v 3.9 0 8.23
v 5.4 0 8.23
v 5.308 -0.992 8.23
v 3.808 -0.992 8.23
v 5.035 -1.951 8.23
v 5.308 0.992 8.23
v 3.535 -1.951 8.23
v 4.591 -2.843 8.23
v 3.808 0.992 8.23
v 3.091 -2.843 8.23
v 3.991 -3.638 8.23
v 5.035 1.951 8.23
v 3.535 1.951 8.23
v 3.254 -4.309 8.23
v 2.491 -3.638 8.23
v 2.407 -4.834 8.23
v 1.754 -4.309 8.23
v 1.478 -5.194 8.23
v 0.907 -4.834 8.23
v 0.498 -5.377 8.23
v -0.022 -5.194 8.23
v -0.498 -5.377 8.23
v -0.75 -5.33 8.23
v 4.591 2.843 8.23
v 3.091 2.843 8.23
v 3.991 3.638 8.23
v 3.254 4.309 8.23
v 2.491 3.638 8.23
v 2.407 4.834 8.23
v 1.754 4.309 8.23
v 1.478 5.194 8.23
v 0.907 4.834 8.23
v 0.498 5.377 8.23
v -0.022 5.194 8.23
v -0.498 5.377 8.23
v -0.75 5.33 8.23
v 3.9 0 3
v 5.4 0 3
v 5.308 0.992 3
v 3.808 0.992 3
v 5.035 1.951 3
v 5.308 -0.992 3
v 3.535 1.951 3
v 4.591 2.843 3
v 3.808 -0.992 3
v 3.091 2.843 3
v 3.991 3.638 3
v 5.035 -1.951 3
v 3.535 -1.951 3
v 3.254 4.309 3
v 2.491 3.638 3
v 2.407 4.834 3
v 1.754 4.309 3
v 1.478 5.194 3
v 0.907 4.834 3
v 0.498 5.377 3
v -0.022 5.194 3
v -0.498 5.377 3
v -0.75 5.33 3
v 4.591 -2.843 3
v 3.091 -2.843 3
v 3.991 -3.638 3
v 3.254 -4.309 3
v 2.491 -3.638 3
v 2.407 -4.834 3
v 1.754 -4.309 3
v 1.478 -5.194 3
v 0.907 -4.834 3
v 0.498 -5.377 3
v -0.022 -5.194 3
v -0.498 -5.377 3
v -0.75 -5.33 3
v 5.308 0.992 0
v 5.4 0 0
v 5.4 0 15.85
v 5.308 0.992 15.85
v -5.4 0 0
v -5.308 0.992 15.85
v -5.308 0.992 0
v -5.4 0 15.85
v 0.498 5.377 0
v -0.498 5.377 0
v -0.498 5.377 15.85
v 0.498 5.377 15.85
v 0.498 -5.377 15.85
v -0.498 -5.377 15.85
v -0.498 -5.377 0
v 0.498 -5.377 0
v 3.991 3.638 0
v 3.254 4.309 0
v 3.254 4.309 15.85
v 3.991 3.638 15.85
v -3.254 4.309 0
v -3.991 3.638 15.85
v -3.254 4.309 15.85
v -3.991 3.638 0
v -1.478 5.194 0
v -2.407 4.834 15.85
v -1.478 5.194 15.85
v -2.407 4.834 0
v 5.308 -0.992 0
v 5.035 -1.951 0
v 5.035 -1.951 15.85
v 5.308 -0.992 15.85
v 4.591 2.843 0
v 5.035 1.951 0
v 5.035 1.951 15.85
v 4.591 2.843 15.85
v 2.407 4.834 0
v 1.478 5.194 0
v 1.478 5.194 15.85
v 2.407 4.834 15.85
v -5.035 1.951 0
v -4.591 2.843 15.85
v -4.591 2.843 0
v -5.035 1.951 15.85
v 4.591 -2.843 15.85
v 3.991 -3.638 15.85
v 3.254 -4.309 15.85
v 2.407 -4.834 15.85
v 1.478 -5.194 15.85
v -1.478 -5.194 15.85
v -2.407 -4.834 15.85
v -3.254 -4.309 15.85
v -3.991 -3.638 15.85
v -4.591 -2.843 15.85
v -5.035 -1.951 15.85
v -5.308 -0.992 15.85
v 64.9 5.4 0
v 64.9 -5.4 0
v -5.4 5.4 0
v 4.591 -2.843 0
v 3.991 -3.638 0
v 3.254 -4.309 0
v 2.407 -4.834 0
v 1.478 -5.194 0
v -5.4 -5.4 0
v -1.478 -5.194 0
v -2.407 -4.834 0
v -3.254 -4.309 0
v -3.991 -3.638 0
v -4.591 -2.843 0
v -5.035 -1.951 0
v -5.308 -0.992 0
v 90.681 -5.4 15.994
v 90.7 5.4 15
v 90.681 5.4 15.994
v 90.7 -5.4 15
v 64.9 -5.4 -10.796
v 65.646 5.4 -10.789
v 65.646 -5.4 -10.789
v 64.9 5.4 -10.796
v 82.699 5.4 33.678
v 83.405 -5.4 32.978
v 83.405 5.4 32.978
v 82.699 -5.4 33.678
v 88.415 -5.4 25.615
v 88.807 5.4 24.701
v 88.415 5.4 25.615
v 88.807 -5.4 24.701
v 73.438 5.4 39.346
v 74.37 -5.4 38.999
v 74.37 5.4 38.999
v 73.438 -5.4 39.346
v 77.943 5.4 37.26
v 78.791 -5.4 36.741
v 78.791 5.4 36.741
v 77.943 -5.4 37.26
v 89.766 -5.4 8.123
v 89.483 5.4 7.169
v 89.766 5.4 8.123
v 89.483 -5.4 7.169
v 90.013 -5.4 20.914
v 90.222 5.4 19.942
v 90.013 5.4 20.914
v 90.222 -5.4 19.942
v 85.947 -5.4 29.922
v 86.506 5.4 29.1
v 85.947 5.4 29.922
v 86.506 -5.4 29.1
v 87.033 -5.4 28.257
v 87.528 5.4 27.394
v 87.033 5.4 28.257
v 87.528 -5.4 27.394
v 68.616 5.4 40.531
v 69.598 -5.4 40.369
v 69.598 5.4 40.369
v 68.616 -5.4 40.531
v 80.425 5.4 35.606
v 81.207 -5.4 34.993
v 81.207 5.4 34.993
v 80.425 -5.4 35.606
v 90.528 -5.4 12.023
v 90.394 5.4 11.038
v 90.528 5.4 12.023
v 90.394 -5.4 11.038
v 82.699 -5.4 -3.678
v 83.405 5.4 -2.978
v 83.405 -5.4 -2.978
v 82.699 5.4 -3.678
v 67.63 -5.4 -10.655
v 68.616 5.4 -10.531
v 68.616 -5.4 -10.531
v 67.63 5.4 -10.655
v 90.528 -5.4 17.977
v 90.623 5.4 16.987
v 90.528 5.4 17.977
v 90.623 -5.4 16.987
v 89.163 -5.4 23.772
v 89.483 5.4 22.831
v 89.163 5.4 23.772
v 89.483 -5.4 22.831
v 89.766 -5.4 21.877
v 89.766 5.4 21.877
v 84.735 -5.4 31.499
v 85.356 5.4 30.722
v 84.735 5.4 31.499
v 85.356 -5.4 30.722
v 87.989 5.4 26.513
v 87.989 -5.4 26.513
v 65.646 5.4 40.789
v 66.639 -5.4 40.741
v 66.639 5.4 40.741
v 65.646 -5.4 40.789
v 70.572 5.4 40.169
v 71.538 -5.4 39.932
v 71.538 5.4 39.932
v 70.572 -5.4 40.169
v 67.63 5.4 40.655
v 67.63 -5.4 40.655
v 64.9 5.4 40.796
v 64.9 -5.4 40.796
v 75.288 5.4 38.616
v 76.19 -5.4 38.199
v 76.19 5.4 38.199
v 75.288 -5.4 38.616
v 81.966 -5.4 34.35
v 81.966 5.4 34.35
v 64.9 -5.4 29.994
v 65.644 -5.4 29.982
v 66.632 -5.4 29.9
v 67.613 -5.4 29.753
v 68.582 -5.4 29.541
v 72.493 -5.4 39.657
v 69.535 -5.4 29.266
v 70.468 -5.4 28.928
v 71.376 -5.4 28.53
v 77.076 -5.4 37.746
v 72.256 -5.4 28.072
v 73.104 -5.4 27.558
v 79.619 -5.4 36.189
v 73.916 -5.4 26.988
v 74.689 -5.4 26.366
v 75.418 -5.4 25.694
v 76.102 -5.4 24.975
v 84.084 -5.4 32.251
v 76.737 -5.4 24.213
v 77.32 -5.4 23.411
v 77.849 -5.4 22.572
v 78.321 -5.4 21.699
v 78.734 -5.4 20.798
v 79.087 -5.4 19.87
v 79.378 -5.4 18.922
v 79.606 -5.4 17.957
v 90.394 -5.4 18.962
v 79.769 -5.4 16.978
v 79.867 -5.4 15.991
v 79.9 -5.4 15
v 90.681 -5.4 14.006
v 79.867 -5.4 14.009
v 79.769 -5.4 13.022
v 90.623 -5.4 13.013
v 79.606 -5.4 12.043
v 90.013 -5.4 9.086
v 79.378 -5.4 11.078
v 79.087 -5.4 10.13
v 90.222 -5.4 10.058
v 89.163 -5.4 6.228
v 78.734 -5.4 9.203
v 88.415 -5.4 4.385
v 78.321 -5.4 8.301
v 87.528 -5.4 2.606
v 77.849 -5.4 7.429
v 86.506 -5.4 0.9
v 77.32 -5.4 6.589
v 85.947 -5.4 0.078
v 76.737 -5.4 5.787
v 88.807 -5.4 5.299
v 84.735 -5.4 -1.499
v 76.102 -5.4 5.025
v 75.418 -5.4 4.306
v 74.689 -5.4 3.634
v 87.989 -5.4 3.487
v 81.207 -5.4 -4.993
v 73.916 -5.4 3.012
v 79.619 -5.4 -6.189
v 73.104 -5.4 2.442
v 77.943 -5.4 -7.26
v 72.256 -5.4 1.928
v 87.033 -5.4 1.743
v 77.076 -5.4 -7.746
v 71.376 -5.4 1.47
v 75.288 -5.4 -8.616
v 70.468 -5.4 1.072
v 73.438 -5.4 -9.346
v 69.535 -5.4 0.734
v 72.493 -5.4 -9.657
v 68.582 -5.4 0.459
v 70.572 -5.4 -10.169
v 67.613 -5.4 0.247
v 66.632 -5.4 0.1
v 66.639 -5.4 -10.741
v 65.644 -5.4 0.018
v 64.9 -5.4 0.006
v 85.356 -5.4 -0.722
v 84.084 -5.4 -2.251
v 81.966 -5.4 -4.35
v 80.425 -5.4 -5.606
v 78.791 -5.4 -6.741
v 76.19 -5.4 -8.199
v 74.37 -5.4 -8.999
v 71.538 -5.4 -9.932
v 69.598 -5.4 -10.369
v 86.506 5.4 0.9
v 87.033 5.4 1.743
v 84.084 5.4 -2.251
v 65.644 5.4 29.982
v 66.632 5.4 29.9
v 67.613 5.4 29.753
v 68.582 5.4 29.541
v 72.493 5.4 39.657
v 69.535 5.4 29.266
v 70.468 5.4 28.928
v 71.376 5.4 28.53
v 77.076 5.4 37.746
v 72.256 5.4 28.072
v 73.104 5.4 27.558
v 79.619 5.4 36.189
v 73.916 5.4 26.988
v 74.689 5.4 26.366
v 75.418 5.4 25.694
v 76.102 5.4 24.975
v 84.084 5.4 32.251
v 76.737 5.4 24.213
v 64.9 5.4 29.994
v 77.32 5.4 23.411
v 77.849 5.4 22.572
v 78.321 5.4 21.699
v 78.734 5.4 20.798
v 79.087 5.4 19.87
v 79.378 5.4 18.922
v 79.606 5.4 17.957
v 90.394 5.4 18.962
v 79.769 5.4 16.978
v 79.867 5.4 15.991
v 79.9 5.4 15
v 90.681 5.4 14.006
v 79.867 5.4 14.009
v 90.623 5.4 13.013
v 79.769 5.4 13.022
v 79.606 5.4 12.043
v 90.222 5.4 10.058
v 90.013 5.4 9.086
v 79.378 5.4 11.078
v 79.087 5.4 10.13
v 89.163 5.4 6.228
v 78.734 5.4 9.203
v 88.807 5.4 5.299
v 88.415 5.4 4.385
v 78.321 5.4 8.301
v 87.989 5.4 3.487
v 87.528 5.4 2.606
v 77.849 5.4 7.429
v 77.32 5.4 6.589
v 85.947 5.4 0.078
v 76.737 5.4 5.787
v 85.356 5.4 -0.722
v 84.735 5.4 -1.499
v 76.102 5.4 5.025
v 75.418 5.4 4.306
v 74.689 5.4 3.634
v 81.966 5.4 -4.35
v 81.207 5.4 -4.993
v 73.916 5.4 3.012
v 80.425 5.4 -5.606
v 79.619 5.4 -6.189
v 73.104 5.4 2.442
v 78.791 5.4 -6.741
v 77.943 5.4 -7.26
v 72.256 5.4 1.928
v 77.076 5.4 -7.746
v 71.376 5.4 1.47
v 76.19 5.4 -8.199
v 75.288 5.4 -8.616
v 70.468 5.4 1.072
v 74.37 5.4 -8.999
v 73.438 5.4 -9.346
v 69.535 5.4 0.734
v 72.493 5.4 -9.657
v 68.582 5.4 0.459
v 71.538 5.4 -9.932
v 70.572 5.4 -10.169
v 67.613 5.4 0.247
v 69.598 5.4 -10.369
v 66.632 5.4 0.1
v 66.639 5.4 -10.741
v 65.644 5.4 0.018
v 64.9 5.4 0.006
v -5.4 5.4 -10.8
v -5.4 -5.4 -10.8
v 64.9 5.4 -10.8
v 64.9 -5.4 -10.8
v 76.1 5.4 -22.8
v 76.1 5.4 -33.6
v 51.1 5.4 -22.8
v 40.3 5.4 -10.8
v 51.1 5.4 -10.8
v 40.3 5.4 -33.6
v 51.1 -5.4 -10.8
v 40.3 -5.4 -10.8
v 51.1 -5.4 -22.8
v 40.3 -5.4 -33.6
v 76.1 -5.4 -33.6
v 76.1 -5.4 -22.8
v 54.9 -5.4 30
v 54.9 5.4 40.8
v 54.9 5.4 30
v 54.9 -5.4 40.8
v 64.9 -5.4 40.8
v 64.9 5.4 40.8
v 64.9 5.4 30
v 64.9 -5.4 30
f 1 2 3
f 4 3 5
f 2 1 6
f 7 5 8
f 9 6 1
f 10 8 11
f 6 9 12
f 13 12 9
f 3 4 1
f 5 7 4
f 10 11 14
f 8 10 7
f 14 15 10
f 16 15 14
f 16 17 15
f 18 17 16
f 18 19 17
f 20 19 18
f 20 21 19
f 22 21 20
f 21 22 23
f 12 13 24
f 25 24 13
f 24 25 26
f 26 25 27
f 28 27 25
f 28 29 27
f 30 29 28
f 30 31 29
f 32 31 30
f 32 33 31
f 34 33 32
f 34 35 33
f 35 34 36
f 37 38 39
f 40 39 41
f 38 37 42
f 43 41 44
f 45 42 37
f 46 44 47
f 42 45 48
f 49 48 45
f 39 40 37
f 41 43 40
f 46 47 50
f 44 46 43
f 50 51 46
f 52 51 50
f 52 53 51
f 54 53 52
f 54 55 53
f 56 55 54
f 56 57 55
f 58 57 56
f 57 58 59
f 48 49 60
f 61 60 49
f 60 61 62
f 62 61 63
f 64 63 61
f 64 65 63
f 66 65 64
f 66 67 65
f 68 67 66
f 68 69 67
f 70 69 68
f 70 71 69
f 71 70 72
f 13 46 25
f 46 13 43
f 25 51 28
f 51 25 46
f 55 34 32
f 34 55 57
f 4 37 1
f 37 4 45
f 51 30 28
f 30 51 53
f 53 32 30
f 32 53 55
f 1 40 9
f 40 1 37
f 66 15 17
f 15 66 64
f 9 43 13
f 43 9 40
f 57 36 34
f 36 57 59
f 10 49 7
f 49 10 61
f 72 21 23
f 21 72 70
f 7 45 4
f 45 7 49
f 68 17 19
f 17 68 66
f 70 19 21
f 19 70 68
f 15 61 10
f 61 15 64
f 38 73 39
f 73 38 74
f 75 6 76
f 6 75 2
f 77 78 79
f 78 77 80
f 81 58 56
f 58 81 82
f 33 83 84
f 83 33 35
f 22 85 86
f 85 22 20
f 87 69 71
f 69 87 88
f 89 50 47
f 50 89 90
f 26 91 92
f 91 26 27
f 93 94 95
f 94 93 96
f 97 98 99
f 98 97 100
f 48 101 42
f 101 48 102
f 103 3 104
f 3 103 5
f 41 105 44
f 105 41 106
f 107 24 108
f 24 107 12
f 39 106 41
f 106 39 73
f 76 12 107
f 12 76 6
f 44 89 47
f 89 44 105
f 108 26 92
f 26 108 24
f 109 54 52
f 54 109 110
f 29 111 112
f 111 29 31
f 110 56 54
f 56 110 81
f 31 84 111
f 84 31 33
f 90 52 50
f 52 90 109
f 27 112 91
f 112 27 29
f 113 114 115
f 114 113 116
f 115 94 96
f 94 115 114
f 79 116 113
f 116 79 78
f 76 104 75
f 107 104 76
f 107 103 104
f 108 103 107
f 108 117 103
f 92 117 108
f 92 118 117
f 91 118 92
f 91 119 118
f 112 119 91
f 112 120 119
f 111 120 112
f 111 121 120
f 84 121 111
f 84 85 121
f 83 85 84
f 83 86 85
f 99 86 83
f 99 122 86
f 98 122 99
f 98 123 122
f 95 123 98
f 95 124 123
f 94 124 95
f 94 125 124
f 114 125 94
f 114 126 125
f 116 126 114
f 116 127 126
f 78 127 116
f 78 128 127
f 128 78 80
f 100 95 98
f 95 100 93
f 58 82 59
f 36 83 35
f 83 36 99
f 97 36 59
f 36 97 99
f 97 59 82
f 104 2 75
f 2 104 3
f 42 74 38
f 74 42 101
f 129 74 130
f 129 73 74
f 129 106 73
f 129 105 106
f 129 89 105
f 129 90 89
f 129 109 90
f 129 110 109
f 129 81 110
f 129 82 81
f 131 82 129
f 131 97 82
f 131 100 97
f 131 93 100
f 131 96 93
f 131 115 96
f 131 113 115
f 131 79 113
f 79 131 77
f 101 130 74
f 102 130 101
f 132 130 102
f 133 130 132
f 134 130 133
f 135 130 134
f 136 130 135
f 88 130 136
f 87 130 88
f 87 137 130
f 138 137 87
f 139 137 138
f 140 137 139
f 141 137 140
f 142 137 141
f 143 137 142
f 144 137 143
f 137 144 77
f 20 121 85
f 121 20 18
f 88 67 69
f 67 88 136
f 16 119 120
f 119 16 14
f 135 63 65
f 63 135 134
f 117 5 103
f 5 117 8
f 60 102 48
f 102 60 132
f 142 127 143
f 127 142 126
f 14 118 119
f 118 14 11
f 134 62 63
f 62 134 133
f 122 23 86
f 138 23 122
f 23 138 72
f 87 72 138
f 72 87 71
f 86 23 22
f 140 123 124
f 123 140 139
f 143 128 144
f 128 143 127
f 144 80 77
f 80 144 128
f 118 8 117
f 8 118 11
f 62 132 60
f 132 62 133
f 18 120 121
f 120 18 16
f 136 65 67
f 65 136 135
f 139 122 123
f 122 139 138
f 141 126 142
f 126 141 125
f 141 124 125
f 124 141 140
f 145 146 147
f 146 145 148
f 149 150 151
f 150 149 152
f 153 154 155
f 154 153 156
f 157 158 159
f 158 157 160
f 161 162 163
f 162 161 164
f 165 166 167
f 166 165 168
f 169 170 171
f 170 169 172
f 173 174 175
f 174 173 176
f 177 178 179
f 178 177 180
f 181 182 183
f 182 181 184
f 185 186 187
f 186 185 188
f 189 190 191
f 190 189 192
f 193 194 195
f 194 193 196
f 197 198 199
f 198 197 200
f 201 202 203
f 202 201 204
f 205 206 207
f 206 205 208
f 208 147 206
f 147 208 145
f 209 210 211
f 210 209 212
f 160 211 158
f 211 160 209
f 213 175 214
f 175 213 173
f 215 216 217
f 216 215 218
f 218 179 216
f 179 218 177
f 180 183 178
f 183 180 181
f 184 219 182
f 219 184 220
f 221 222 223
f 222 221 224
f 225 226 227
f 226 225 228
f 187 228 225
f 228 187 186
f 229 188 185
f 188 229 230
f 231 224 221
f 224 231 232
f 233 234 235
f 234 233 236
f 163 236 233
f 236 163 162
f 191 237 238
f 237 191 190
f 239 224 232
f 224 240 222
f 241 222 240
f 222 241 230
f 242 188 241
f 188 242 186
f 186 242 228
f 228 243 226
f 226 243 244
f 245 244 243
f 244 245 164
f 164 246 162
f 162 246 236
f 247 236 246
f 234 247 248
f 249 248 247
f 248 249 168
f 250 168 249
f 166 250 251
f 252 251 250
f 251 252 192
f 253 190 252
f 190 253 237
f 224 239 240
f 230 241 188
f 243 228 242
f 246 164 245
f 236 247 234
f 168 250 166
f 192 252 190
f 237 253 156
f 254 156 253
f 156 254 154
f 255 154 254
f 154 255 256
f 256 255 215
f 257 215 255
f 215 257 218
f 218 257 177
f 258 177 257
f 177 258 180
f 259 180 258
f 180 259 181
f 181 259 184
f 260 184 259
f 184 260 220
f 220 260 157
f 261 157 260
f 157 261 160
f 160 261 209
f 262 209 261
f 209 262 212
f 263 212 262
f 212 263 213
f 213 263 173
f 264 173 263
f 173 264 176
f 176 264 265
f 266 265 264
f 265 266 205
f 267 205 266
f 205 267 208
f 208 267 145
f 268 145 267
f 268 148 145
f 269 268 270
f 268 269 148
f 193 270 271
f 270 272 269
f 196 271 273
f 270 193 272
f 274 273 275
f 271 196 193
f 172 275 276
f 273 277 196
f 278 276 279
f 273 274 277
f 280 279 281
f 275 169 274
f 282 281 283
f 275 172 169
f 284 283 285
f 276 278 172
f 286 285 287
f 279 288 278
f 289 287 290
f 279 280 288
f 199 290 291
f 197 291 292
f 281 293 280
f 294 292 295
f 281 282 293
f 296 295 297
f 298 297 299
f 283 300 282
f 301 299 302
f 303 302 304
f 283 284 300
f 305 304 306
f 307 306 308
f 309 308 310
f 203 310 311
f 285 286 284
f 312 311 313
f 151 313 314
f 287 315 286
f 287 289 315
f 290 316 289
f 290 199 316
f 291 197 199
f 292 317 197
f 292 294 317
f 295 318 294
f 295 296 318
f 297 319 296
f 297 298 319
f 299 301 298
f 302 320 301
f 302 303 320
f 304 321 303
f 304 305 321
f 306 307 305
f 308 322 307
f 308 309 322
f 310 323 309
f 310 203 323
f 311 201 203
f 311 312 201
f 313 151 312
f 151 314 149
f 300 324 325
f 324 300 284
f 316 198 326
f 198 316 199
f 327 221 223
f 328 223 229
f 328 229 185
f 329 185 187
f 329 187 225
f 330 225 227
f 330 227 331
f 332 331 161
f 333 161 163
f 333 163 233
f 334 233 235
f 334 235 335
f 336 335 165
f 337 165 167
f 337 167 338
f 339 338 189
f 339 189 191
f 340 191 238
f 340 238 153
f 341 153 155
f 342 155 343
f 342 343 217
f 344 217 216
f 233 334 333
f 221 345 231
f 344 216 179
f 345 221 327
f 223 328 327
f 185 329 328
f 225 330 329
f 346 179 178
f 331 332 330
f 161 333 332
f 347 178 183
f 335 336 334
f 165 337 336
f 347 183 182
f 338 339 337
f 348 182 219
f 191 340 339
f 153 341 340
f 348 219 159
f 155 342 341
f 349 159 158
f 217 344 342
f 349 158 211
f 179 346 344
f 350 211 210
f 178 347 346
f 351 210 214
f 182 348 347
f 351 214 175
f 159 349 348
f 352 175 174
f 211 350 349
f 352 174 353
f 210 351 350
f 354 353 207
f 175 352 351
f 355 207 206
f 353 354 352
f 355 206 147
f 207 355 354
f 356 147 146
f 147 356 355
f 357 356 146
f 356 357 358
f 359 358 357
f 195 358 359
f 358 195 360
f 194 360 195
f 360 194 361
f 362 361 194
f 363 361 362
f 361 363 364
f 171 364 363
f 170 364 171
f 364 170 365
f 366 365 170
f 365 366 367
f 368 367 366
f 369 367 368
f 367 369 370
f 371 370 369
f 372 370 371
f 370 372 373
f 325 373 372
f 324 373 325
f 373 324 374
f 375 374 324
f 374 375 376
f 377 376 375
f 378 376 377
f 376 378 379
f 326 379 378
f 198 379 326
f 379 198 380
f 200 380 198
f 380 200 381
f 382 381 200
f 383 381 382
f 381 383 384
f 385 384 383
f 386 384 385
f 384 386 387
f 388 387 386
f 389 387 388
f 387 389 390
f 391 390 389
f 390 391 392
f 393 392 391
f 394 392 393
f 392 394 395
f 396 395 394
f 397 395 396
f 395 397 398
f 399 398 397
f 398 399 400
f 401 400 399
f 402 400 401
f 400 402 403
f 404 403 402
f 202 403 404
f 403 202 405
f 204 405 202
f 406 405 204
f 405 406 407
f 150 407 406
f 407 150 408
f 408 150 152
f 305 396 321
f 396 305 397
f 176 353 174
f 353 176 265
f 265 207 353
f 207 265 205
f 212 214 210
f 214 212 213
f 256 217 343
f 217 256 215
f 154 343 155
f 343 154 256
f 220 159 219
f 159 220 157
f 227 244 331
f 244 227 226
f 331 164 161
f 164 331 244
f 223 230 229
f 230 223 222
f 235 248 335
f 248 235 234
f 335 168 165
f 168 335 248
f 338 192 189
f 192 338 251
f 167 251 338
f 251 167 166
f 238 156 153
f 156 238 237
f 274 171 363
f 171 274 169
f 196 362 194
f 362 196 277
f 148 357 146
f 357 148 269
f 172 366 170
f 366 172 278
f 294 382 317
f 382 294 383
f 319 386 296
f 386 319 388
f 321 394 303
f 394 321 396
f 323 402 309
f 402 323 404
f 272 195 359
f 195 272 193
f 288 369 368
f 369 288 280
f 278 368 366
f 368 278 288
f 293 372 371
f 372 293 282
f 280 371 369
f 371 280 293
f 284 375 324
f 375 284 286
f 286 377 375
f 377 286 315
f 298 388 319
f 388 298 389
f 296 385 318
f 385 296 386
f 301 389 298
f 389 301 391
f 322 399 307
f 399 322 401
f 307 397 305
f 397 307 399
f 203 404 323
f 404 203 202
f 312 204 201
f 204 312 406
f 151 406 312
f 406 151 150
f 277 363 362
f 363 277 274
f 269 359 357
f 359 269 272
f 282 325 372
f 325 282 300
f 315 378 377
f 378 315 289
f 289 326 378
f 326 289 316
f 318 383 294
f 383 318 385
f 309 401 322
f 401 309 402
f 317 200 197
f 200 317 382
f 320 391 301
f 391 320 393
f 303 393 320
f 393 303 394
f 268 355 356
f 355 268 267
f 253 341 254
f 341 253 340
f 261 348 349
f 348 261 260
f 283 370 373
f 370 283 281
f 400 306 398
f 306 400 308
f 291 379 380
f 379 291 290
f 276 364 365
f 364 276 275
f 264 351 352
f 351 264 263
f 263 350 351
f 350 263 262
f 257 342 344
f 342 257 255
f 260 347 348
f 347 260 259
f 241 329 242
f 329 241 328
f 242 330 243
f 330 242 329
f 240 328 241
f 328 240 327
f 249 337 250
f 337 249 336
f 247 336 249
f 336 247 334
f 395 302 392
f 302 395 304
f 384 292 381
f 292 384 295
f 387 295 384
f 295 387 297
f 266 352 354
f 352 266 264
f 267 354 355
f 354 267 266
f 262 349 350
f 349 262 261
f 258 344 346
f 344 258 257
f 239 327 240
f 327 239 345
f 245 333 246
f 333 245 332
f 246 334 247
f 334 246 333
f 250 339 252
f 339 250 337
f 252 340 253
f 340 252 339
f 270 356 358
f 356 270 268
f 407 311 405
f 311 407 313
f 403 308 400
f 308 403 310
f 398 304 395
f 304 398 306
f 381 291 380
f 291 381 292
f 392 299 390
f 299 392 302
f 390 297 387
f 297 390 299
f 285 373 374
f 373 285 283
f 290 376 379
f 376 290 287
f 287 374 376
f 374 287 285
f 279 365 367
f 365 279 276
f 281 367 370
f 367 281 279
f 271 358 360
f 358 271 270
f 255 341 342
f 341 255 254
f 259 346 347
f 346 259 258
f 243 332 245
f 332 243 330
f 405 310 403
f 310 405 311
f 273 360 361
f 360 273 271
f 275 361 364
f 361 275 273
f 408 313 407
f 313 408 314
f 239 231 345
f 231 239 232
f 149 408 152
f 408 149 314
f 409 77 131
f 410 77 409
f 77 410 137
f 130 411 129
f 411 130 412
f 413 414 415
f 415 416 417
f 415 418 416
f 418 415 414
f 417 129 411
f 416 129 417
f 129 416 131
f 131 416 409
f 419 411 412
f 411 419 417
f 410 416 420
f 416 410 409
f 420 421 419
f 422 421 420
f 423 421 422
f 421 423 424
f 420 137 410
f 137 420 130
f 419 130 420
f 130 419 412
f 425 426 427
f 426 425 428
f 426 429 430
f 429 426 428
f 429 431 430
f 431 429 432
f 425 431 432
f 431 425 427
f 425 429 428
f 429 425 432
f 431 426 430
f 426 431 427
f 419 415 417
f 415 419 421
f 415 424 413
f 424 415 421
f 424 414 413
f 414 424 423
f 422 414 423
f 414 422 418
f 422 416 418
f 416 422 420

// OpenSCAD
inner_full = 12.85;
inner_notch = 5.23;
inner_extra= 3;
// inner_l1 = inner_full - inner_notch;
// inner_l2 = inner_full - inner_l1;
inner_diameter = 10.8;
inner_radius=inner_diameter/2;
inner_short = 9.3;
    /*
https://en.wikibooks.org/wiki/OpenSCAD_User_Manual/Other_Language_Features#$fa,_$fs_and_$fn
    */

$fa=1;
$fs= 1;

// nub
difference() {
    cylinder(inner_full + inner_extra, d=inner_diameter);
    translate([-inner_diameter + inner_short, 0, inner_extra]) LockSlice();
}

// vertical rod
bag_clearance=34;
snap_clearance=6.3;
rod_len= bag_clearance +  snap_clearance + 30;
rod_shift= -inner_radius;

translate([rod_shift, rod_shift, -inner_diameter])
cube([rod_len, inner_diameter, inner_diameter]);

hook_radius=15;
ring_inner=hook_radius*2;
//translate([0, inner_diameter/2, ring_inner/2])
//rotate([90, 0, 0])
//ring(inner_diameter, ring_inner, ring_inner+inner_diameter*2);

// hook
translate([rod_len-inner_radius, inner_radius, ring_inner/2])
rotate([90, 0, 0])
halfring(inner_diameter, ring_inner, ring_inner+inner_diameter*2, 1);

// hook tip
tip_len = 10;
translate([rod_len+rod_shift-tip_len, rod_shift, hook_radius*2])
cube([tip_len, inner_diameter, inner_diameter]);

// tube hanger
tube_clearance = 12;
translate(
    [bag_clearance+snap_clearance+inner_diameter,
     rod_shift,
     -tube_clearance-inner_diameter*2])
cube([25, inner_diameter, inner_diameter]);
translate([bag_clearance+snap_clearance,rod_shift,-inner_diameter-(tube_clearance+inner_diameter)])
cube([inner_diameter, inner_diameter, tube_clearance+inner_diameter]);


module halfring(height, inner, outer, dir=0) {
    difference() {
        angle = dir * 90;
        ring(height, inner, outer);
        rotate([0, 0, angle])
        translate([-outer/2-1, 0, -1])
        cube([outer+2, outer+2, height+2]);
    }
}

module ring(height, inner, outer) {
    difference() {
        cylinder(height, d=outer);
        translate([0, 0, -1])
        cylinder(height+2, d=inner);
    }
}

module LockSlice() {
    difference() {
        cube_side = 20;
        cube_mv = -cube_side / 2;
        translate([cube_mv, cube_mv, 0])
            cube([cube_side, cube_side, inner_notch]);
        //cylinder(inner_notch, inner_diameter);
        translate([0,0,-1])
        cylinder(inner_notch+2, d=inner_diameter);
    }
}
